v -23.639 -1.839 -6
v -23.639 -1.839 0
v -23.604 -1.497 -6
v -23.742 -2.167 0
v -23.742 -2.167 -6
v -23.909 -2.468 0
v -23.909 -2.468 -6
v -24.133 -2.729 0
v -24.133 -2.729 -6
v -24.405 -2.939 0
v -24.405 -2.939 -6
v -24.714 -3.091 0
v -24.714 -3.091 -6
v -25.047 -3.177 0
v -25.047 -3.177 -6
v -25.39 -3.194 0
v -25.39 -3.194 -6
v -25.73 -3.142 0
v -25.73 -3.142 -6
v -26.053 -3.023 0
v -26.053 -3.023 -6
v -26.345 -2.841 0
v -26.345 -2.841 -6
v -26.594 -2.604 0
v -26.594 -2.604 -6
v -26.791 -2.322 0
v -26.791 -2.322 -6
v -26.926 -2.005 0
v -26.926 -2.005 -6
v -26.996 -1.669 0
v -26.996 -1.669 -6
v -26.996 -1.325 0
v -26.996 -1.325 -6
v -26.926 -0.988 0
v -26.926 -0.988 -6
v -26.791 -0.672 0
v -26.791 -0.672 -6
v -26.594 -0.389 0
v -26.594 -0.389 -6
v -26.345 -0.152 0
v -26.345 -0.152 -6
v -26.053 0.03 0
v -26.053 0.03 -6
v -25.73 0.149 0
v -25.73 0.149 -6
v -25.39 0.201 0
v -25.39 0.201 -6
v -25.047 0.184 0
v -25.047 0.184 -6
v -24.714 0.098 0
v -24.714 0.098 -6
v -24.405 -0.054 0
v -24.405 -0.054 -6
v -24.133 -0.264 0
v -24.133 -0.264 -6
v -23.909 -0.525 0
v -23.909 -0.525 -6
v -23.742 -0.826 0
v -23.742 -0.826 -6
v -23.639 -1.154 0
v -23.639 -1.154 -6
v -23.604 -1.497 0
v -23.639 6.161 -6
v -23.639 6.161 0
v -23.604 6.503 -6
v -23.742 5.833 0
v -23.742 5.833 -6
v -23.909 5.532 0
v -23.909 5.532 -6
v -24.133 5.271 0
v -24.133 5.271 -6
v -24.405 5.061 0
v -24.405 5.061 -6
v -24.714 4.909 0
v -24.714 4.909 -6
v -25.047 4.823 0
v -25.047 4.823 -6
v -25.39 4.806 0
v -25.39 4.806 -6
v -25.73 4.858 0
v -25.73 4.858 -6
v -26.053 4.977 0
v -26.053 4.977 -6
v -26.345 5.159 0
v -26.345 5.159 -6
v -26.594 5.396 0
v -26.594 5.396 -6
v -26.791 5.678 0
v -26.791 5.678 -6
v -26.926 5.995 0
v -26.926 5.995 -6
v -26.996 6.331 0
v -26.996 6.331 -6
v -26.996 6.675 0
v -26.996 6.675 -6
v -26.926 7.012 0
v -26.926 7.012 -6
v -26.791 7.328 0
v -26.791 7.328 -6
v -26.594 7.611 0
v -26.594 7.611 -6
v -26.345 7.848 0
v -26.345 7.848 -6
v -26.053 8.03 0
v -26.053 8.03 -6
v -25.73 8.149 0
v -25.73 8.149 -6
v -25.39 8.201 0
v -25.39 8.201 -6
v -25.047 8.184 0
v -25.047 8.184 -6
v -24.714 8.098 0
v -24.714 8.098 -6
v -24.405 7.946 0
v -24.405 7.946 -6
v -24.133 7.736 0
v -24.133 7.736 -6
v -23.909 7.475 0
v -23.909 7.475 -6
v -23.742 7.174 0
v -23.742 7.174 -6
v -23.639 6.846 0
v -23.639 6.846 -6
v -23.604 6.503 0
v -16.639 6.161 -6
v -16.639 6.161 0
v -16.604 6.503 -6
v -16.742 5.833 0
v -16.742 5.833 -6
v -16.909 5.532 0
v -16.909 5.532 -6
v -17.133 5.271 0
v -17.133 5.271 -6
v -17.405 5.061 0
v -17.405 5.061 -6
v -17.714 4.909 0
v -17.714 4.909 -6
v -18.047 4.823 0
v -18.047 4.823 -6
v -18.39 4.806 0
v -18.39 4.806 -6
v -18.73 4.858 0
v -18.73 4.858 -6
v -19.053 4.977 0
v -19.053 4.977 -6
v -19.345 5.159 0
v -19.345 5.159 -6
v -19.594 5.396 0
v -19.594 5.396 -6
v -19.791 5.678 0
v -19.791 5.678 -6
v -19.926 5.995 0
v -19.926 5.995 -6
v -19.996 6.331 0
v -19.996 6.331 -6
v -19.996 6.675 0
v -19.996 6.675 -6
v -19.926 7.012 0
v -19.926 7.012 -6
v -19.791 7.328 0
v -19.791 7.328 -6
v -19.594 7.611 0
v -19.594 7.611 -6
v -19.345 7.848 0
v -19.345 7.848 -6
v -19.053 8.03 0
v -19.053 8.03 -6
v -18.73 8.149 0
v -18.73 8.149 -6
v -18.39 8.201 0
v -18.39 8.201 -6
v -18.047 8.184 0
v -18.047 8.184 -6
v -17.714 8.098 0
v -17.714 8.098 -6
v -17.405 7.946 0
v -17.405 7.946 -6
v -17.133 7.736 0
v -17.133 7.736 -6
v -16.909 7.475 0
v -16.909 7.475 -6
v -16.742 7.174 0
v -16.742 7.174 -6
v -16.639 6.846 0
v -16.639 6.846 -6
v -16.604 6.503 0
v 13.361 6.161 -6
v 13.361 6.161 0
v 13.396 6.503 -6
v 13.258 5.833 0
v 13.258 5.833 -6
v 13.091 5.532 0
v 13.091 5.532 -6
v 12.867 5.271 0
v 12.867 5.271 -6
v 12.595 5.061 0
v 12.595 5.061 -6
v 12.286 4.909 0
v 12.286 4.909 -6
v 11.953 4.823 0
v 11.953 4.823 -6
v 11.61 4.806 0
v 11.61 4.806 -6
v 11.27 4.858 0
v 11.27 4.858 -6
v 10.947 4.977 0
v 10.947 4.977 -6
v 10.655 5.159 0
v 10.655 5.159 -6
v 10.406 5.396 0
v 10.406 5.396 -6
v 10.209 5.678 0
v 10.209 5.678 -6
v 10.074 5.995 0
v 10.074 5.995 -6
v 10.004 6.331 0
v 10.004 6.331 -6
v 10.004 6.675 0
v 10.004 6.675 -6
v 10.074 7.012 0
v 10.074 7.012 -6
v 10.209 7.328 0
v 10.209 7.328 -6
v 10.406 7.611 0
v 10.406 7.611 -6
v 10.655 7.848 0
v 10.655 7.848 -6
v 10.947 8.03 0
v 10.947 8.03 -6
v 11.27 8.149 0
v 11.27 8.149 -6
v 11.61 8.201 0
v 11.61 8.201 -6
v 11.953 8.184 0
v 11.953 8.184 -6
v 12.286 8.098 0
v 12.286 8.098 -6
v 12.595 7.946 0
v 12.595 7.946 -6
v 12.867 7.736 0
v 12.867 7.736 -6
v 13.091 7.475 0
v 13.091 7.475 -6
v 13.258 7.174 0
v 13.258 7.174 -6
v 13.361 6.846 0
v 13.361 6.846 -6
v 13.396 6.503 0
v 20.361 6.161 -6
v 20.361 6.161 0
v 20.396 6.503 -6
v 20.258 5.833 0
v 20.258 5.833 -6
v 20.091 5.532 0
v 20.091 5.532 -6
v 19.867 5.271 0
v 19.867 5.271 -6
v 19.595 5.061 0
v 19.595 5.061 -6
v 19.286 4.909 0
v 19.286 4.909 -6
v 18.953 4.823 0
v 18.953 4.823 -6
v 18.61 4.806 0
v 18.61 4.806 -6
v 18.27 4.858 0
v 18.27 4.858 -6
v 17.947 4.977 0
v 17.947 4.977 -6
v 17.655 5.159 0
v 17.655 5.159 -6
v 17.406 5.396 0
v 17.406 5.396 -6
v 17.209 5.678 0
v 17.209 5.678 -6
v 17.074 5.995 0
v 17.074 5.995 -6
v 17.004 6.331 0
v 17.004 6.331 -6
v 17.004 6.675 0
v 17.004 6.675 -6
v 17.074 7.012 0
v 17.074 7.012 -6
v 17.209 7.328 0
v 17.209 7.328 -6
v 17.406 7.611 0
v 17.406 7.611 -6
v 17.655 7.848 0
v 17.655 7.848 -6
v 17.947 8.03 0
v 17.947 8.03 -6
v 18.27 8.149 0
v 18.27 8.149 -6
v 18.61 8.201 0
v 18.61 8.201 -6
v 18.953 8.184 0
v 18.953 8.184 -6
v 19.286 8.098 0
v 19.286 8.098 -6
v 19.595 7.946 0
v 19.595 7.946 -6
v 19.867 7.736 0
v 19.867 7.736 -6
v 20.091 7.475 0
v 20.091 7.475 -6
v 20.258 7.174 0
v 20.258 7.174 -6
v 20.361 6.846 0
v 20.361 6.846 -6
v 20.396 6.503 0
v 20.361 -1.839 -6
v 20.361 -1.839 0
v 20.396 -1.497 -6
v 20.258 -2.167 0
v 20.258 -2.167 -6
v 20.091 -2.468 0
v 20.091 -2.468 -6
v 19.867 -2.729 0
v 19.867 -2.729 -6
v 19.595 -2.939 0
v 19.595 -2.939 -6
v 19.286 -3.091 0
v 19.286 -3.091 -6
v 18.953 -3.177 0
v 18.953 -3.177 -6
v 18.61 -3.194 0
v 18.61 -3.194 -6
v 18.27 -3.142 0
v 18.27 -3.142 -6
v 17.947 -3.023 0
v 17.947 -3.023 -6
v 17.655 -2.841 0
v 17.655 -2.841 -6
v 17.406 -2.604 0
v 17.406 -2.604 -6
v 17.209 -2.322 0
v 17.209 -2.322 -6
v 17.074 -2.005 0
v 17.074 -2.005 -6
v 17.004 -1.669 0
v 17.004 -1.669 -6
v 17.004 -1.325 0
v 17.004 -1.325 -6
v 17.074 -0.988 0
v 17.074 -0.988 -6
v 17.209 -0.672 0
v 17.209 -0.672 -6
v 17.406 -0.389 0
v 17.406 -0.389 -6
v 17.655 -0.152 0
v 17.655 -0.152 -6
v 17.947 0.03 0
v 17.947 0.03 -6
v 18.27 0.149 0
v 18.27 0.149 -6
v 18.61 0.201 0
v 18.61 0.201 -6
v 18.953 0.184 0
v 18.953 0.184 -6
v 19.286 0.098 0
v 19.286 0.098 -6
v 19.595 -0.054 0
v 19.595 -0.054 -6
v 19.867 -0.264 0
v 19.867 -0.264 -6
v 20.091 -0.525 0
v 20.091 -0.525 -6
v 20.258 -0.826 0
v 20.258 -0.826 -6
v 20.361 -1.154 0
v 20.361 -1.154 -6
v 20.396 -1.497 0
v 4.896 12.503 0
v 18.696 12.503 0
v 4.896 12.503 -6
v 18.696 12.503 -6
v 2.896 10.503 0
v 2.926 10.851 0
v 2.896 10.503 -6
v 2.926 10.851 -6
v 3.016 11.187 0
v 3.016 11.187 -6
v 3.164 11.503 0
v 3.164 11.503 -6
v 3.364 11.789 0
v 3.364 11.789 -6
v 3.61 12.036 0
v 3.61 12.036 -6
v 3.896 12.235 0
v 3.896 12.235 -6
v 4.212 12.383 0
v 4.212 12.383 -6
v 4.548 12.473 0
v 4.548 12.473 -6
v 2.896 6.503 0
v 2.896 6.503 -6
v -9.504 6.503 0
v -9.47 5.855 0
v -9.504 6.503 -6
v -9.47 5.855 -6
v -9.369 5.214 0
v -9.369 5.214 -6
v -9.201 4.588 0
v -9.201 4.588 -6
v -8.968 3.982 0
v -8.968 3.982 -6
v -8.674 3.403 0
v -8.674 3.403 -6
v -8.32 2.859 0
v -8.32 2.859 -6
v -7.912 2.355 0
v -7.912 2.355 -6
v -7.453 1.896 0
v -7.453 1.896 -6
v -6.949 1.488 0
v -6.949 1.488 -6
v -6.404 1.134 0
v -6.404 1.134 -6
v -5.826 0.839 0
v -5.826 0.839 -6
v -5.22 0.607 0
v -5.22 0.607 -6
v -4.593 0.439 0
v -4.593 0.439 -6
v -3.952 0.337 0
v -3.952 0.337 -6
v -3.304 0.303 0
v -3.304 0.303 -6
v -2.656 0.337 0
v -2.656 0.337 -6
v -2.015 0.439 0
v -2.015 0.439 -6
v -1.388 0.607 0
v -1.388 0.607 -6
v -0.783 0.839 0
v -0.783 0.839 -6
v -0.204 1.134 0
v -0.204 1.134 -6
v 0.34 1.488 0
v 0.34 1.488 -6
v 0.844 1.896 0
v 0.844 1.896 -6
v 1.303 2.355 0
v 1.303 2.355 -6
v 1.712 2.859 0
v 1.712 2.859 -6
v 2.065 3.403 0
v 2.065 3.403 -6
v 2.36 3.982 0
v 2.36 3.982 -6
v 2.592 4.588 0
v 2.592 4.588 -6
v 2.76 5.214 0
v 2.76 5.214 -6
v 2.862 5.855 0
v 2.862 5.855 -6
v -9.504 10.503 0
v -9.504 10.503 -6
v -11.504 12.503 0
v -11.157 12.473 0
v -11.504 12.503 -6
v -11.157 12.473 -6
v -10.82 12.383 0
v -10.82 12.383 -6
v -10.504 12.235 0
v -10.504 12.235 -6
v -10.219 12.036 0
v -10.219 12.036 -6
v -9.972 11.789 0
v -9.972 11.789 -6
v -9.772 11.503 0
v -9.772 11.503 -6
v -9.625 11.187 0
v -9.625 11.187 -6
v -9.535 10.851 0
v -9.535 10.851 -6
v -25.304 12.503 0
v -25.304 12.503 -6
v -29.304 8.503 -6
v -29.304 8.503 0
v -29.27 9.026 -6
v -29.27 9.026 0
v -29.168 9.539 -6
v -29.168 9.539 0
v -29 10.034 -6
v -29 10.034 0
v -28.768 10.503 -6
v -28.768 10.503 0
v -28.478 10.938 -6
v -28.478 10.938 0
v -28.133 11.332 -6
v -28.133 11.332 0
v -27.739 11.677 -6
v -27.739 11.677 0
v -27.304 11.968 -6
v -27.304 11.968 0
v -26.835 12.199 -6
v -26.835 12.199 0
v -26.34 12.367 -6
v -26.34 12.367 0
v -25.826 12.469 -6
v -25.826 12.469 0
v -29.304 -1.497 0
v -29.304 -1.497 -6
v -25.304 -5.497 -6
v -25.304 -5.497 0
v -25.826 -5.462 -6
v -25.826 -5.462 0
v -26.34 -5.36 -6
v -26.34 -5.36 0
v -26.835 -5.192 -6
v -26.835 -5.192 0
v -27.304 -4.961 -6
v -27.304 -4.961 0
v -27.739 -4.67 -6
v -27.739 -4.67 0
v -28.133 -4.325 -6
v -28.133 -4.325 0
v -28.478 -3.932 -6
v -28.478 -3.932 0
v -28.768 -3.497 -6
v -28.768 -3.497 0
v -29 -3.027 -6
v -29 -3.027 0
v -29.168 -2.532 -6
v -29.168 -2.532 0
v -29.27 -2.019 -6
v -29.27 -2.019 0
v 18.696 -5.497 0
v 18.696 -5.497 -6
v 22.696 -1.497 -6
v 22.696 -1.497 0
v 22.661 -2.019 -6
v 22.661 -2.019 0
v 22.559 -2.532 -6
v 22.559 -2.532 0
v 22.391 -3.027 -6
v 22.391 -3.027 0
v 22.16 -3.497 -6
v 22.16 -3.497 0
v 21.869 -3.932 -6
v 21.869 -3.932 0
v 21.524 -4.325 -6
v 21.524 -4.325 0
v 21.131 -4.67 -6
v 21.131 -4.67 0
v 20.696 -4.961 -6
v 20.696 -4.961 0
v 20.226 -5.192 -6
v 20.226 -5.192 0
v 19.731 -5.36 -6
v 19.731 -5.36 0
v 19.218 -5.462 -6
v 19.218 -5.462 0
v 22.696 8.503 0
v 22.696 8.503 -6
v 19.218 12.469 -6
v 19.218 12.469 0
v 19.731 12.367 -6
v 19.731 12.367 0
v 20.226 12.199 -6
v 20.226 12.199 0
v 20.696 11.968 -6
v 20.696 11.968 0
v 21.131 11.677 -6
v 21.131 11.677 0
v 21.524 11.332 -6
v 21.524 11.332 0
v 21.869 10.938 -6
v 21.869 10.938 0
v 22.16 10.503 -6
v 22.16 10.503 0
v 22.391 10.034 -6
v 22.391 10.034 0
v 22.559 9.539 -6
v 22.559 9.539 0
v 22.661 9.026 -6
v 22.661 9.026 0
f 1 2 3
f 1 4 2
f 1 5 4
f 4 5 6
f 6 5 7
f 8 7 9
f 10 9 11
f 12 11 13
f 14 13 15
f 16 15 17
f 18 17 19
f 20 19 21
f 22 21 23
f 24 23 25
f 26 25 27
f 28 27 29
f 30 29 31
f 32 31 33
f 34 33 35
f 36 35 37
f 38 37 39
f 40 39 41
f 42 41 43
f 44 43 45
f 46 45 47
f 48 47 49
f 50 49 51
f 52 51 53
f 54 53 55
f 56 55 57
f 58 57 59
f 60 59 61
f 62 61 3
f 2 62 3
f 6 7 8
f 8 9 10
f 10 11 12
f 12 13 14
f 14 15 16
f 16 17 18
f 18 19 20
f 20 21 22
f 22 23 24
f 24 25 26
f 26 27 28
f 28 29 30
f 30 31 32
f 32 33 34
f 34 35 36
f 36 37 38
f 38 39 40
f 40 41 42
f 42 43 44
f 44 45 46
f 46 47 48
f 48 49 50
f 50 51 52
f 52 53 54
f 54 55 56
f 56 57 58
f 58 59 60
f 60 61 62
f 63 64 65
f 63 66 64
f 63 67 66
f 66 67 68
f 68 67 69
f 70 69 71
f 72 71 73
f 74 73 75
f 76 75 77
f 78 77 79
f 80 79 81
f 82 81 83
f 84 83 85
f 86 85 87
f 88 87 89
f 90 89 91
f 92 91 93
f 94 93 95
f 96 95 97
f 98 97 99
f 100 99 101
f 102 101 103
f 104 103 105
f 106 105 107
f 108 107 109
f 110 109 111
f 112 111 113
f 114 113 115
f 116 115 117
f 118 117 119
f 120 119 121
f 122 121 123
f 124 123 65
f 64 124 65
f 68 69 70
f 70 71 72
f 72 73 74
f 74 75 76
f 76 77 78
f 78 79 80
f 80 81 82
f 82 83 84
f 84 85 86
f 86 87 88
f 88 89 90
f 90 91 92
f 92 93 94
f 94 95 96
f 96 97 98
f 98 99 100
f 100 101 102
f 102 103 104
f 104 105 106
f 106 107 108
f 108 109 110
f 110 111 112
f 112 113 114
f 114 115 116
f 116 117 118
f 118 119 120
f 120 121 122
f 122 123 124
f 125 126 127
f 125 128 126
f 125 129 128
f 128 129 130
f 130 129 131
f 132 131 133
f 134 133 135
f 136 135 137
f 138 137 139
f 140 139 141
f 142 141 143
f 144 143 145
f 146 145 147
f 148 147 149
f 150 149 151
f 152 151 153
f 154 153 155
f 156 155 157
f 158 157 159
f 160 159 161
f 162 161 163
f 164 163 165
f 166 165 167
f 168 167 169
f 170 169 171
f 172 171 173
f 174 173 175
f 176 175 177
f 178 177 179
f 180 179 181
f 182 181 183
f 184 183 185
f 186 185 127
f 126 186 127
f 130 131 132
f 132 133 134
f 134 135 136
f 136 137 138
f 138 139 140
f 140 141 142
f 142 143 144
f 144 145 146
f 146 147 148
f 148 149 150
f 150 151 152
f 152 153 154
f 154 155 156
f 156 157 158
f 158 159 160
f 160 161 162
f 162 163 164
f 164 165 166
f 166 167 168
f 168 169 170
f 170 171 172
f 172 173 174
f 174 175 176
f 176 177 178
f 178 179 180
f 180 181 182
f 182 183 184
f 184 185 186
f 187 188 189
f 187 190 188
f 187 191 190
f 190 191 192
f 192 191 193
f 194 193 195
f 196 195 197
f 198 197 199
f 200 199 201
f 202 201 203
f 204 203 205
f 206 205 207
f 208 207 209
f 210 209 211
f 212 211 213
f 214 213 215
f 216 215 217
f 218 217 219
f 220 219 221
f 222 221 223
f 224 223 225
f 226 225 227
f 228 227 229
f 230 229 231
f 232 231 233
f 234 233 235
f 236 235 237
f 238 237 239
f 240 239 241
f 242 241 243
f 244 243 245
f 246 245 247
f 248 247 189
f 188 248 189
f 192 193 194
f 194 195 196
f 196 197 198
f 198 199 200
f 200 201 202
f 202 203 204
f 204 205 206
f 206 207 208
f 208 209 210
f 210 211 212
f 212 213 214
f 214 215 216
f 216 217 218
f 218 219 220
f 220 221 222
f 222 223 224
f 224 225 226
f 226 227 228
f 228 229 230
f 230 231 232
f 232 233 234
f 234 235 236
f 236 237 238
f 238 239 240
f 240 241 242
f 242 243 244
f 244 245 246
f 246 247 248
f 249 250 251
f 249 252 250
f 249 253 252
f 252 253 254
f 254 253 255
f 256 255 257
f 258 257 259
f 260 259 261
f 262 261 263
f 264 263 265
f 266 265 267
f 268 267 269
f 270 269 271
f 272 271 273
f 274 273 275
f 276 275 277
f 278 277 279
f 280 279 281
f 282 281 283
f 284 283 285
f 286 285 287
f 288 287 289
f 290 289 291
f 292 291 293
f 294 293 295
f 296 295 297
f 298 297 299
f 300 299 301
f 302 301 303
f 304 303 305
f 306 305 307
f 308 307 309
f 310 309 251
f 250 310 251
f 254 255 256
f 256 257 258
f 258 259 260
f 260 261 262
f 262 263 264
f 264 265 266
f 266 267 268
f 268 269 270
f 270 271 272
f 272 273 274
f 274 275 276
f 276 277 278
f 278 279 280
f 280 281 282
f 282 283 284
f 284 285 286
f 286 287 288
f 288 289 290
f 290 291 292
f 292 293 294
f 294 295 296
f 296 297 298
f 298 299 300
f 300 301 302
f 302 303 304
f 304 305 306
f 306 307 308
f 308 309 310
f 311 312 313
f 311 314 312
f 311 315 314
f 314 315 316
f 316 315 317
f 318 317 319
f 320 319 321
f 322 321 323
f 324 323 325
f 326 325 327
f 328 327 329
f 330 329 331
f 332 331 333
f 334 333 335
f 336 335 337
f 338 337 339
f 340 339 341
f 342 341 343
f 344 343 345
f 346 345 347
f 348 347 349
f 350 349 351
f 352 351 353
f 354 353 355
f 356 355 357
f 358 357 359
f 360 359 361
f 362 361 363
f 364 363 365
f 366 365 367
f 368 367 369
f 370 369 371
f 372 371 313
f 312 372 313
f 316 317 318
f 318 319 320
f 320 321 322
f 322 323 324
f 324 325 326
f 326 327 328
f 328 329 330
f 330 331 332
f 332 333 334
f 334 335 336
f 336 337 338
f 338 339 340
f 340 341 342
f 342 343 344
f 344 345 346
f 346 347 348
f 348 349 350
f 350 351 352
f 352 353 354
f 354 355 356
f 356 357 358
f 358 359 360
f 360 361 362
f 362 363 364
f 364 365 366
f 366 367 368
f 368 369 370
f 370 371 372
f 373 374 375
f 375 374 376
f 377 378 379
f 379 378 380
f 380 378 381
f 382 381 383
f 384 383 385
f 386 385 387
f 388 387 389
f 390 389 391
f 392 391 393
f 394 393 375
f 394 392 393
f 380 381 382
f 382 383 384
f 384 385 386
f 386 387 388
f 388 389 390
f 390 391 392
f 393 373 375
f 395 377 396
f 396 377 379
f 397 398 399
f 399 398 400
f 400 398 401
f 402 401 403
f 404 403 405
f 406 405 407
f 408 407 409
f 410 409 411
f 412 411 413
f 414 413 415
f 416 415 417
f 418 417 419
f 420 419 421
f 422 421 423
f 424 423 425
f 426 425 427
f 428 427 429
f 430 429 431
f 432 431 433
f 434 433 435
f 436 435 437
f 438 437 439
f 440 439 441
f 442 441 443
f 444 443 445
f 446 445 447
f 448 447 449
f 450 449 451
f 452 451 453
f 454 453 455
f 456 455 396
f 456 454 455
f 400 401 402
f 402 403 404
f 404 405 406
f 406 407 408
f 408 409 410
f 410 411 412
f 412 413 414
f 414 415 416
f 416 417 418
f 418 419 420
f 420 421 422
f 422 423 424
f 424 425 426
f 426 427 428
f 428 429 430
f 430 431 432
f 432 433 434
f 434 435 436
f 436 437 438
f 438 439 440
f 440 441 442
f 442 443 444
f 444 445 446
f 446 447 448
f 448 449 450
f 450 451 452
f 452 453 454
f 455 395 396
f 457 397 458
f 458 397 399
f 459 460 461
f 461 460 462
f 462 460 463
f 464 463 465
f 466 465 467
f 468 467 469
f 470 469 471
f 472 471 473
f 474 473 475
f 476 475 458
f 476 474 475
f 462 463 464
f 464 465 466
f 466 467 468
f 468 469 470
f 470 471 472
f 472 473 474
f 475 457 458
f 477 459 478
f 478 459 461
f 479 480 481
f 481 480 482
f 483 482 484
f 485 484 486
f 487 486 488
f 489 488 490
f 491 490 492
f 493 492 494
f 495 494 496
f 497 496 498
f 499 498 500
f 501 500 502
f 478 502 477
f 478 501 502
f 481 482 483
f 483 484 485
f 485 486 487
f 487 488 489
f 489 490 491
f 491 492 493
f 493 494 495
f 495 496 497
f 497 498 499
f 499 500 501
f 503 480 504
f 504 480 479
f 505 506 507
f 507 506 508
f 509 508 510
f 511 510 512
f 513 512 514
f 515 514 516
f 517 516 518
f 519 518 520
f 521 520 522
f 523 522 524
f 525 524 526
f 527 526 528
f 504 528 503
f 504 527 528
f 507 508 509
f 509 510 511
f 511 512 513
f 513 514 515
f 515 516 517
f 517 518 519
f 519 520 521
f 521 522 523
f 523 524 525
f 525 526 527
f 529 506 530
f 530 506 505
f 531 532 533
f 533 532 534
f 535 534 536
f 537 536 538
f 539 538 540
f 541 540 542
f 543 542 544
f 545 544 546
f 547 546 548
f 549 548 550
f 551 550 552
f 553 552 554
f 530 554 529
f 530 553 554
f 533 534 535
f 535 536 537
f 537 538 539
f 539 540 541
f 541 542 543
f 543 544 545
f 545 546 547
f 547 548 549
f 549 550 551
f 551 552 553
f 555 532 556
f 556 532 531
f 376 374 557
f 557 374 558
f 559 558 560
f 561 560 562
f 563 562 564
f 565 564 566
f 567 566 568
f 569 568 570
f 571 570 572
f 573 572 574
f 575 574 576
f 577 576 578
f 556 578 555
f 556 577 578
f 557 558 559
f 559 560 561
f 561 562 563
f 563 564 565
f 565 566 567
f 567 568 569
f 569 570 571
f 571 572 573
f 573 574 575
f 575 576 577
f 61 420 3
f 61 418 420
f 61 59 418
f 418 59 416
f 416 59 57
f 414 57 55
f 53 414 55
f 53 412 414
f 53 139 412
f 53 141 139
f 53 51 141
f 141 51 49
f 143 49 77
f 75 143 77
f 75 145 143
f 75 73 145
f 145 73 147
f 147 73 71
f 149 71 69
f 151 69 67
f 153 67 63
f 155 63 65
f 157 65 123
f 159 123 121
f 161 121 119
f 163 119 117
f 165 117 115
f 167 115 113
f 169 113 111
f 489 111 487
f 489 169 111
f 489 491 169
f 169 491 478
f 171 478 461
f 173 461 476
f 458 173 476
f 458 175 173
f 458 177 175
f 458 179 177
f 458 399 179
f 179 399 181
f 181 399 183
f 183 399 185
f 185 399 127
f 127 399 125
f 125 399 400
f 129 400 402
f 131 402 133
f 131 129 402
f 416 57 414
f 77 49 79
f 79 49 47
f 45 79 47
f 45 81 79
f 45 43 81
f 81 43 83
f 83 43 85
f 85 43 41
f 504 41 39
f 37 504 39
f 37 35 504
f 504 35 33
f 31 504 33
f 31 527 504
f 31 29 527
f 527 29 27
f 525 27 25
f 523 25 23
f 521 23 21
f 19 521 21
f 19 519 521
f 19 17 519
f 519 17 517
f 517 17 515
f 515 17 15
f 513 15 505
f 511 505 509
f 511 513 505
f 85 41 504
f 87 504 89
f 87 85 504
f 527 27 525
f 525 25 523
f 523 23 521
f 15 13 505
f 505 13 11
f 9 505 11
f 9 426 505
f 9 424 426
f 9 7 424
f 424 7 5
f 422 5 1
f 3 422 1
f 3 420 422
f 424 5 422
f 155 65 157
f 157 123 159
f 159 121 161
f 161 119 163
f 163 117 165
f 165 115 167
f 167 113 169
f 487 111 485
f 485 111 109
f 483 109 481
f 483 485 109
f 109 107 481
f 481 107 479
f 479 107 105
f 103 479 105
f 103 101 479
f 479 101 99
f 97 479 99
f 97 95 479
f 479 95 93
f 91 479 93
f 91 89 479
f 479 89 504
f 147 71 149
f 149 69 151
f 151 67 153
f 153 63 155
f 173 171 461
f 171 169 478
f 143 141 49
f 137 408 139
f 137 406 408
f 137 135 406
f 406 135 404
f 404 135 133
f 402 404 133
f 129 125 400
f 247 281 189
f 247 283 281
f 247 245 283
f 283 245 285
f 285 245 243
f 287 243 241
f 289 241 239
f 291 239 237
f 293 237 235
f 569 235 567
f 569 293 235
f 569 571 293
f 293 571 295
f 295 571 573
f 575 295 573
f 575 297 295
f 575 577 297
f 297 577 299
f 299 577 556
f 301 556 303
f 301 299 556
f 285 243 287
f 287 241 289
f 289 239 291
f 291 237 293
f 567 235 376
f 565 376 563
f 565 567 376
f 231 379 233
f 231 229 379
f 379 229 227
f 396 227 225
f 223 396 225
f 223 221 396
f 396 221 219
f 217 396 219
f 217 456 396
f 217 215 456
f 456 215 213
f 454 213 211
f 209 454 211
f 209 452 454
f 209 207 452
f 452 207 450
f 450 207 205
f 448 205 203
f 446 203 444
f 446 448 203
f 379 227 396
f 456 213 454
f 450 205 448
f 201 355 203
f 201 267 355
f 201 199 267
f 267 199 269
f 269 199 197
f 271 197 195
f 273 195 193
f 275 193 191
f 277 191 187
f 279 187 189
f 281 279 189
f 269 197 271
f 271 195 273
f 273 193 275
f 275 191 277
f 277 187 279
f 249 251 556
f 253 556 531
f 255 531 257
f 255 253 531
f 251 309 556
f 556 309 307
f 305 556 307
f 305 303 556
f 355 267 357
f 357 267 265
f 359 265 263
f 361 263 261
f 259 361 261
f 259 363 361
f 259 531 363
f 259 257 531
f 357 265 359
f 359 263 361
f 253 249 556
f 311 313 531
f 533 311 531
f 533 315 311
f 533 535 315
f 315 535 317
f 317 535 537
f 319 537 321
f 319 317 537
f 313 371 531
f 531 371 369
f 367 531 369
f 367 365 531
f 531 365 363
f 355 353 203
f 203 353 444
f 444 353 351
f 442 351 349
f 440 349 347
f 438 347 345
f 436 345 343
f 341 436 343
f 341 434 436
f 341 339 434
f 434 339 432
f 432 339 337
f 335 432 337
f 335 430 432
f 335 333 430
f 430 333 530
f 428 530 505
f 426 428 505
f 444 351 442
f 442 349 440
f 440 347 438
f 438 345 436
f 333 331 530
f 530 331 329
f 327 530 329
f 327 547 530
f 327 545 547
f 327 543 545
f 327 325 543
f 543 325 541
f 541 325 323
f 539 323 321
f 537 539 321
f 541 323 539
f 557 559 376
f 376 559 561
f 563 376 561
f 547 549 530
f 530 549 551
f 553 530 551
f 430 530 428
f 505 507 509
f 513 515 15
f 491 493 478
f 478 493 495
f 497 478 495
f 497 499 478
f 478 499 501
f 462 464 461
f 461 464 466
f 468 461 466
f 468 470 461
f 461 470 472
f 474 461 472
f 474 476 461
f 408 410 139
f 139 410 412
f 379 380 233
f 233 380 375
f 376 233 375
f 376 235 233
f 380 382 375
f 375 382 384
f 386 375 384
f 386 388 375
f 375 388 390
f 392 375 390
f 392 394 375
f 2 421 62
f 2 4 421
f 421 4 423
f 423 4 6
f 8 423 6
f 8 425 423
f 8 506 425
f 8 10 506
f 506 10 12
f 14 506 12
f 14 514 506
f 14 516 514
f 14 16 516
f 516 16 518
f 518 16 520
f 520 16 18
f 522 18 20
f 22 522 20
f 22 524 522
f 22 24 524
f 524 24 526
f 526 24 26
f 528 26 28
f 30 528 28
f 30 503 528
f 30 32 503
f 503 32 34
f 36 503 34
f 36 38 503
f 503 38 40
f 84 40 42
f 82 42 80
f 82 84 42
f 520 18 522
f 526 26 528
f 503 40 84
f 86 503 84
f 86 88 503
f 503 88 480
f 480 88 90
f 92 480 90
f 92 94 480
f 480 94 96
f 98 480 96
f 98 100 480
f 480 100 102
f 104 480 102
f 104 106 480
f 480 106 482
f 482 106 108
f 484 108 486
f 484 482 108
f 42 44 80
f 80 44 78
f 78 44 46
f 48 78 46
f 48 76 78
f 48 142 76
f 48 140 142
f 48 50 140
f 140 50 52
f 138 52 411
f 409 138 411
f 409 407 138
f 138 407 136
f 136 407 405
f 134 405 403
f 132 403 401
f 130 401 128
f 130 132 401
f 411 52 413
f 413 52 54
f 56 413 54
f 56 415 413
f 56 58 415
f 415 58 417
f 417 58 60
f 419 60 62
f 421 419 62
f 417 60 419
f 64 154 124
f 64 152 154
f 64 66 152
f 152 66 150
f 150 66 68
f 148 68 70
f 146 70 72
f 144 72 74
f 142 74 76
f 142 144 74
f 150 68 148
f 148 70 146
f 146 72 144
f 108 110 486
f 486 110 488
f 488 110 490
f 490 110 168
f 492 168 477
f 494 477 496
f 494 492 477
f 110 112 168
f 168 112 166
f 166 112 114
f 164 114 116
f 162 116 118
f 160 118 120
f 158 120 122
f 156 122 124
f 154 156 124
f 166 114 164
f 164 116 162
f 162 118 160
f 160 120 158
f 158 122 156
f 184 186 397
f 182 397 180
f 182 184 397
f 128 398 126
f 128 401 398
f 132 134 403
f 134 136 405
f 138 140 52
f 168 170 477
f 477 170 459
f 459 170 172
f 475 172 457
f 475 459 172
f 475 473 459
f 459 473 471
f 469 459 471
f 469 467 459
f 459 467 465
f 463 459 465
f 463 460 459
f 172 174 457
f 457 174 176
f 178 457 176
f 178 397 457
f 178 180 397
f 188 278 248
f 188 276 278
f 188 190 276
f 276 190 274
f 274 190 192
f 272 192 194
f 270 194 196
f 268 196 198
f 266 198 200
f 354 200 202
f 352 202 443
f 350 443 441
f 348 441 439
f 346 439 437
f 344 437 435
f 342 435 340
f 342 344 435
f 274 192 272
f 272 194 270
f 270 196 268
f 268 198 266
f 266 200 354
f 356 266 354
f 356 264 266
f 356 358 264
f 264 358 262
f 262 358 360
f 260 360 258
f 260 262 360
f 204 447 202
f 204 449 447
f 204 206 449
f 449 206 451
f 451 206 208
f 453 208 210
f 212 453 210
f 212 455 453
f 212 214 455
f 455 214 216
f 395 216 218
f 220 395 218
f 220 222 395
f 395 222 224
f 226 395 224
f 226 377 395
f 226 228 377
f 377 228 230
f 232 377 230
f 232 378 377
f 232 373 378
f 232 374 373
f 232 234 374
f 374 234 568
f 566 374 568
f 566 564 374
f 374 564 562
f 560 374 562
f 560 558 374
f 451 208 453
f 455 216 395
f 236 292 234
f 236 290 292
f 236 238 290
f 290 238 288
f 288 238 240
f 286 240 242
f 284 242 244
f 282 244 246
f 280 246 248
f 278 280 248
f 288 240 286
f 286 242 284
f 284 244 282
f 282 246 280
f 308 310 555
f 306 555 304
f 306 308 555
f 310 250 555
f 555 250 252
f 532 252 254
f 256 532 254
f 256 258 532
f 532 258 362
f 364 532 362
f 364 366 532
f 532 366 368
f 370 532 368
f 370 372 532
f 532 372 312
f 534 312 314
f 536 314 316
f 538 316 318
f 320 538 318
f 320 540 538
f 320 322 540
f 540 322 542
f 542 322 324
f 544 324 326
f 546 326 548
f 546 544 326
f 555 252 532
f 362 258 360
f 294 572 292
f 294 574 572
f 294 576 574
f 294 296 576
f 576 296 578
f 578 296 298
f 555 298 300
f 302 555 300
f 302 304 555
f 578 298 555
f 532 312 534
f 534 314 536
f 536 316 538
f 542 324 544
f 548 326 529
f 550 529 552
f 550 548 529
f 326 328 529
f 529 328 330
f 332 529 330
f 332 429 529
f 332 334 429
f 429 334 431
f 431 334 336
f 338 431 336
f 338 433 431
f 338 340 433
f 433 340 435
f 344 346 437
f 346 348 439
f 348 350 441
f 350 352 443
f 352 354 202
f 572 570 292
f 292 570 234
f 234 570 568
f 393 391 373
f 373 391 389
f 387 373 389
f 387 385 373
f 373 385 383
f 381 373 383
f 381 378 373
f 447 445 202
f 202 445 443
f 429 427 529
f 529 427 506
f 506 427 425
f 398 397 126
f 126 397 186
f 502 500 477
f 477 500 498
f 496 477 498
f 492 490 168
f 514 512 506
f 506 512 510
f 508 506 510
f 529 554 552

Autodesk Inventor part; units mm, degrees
ref_plane "YZ Plane" through (0, 0, 0) normal (1, 0, 0) x (0, 1, 0)
ref_plane "XZ Plane" through (0, 0, 0) normal (0, 1, 0) x (-1, 0, 0)
ref_plane "XY Plane" through (0, 0, 0) normal (0, 0, 1) x (1, 0, 0)
sketch "Sketch1" plane through (0, 0, 0) normal (0, 0, 1) x (1, 0, 0)
  circle A0 centre (18.6957, -1.4966) radius 1.7
  circle A1 centre (18.6957, 6.5034) radius 1.7 projected
  circle A2 centre (11.6957, 6.5034) radius 1.7 projected
  arc A3 (22.6957, 8.5034) -> (18.6957, 12.5034) centre (18.6957, 8.5034) ccw
  line L0 (4.8957, 12.5034) -> (18.6957, 12.5034)
  arc A4 (4.8957, 12.5034) -> (2.8957, 10.5034) centre (4.8957, 10.5034) ccw
  line L1 (2.8957, 6.5034) -> (2.8957, 10.5034)
  arc A5 (-9.5043, 6.5034) -> (2.8957, 6.5034) centre (-3.3043, 6.5034) ccw projected
  line L2 (-9.5043, 10.5034) -> (-9.5043, 6.5034)
  arc A6 (-9.5043, 10.5034) -> (-11.5043, 12.5034) centre (-11.5043, 10.5034) ccw
  line L3 (22.6957, 8.5034) -> (22.6957, -1.4966)
  arc A7 (18.6957, -5.4966) -> (22.6957, -1.4966) centre (18.6957, -1.4966) ccw
  line L4 (-3.3043, 6.5034) -> (-3.3043, -12.8188) construction
  circle A8 centre (-25.3043, -1.4966) radius 1.7
  circle A9 centre (-25.3043, 6.5034) radius 1.7
  circle A10 centre (-18.3043, 6.5034) radius 1.7
  arc A11 (-25.3043, 12.5034) -> (-29.3043, 8.5034) centre (-25.3043, 8.5034) ccw
  line L5 (-11.5043, 12.5034) -> (-25.3043, 12.5034)
  line L6 (-9.5043, 6.5034) -> (-9.5043, 10.5034)
  arc A12 (-9.5043, 6.5034) -> (2.8957, 6.5034) centre (-3.3043, 6.5034) ccw
  line L7 (-29.3043, 8.5034) -> (-29.3043, -1.4966)
  arc A13 (-29.3043, -1.4966) -> (-25.3043, -5.4966) centre (-25.3043, -1.4966) ccw
  line L8 (-25.3043, -5.4966) -> (18.6957, -5.4966)
  point P0 (0, 0)
  dimension "d18" = 4
  dimension "d24" = 6
  dimension "d26" = 2
  dimension "d27" = 2
  dimension "d28" = 2
extrude "Extrusion1" add sketch "Sketch1" against normal blind 6
sketch "Sketch2" plane through (0, 0, -6) normal (0, 0, -1) x (-1, 0, 0)
  circle A0 centre (26.3043, -2.4966) radius 1.6 projected
  circle A1 centre (26.3043, 15.5034) radius 1.6 projected
  circle A2 centre (26.3043, 6.5034) radius 2.5 projected
  arc A3 (30.3043, 15.5034) -> (23.3147, 18.1609) centre (26.3043, 15.5034) ccw projected
  circle A4 centre (18.3043, 6.5034) radius 1.7 projected
  circle A5 centre (18.3043, -5.4966) radius 1.7 projected
  circle A6 centre (26.3043, -2.4966) radius 1.6 projected
  circle A7 centre (26.3043, 15.5034) radius 1.6 projected
  line L0 (14.3043, 6.5034) -> (14.3043, -5.4966) projected
  arc A8 (14.3043, -5.4966) -> (19.7088, -9.2419) centre (18.3043, -5.4966) ccw projected
  line L1 (19.7088, -9.2419) -> (27.7088, -6.2419) projected
  arc A9 (27.7088, -6.2419) -> (30.3043, -2.4966) centre (26.3043, -2.4966) ccw projected
  line L2 (30.3043, -2.4966) -> (30.3043, 2.0313) projected
  arc A10 (30.3043, 2.0313) -> (30.3043, 10.9756) centre (26.3043, 6.5034) ccw projected
  line L3 (30.3043, 10.9756) -> (30.3043, 15.5034) projected
  arc A11 (30.3043, 15.5034) -> (23.3147, 18.1609) centre (26.3043, 15.5034) ccw projected
  line L4 (23.3147, 18.1609) -> (15.3147, 9.1609) projected
  arc A12 (15.3147, 9.1609) -> (14.3043, 6.5034) centre (18.3043, 6.5034) ccw projected
  line L5 (18.3043, 12.5242) -> (23.3147, 18.1609) construction
  arc A13 (27.7088, -6.2419) -> (18.3043, -5.4966) centre (19.7185, -47.358) ccw projected
  line L6 (23.3147, 18.1609) -> (16.508, 12.5034) projected
  line L7 (-4.8957, 12.5034) -> (-18.6957, 12.5034) projected
  line L8 (21.8043, 16.9055) -> (21.8043, -5.5246)
  line L9 (25.163, -7.1966) -> (21.8043, -5.5246)
  circle A14 centre (18.3043, 6.5034) radius 1.7 projected
  point P0 (0, 0)
  dimension "d22" = 3.5
sketch "Sketch4" plane through (0, 0, -6) normal (0, 0, -1) x (-1, 0, 0)
  circle A0 centre (-11.6957, 6.5034) radius 1.7 projected
  circle A1 centre (18.3043, 6.5034) radius 1.7 projected
  line L0 (-8.4337, 6.5034) -> (-10.0647, 3.6784)
  line L1 (-10.0647, 3.6784) -> (-13.3267, 3.6784)
  line L2 (-13.3267, 3.6784) -> (-14.9577, 6.5034)
  line L3 (-14.9577, 6.5034) -> (-13.3267, 9.3284)
  line L4 (-13.3267, 9.3284) -> (-10.0647, 9.3284)
  line L5 (-10.0647, 9.3284) -> (-8.4337, 6.5034)
  line L6 (15.0423, 6.5034) -> (16.6733, 9.3284)
  line L7 (16.6733, 9.3284) -> (19.9353, 9.3284)
  line L8 (19.9353, 9.3284) -> (21.5663, 6.5034)
  line L9 (21.5663, 6.5034) -> (19.9353, 3.6784)
  line L10 (19.9353, 3.6784) -> (16.6733, 3.6784)
  line L11 (16.6733, 3.6784) -> (15.0423, 6.5034)
  dimension "d21" = 5.65
properties part number "Extruder_Fixer_normal"
